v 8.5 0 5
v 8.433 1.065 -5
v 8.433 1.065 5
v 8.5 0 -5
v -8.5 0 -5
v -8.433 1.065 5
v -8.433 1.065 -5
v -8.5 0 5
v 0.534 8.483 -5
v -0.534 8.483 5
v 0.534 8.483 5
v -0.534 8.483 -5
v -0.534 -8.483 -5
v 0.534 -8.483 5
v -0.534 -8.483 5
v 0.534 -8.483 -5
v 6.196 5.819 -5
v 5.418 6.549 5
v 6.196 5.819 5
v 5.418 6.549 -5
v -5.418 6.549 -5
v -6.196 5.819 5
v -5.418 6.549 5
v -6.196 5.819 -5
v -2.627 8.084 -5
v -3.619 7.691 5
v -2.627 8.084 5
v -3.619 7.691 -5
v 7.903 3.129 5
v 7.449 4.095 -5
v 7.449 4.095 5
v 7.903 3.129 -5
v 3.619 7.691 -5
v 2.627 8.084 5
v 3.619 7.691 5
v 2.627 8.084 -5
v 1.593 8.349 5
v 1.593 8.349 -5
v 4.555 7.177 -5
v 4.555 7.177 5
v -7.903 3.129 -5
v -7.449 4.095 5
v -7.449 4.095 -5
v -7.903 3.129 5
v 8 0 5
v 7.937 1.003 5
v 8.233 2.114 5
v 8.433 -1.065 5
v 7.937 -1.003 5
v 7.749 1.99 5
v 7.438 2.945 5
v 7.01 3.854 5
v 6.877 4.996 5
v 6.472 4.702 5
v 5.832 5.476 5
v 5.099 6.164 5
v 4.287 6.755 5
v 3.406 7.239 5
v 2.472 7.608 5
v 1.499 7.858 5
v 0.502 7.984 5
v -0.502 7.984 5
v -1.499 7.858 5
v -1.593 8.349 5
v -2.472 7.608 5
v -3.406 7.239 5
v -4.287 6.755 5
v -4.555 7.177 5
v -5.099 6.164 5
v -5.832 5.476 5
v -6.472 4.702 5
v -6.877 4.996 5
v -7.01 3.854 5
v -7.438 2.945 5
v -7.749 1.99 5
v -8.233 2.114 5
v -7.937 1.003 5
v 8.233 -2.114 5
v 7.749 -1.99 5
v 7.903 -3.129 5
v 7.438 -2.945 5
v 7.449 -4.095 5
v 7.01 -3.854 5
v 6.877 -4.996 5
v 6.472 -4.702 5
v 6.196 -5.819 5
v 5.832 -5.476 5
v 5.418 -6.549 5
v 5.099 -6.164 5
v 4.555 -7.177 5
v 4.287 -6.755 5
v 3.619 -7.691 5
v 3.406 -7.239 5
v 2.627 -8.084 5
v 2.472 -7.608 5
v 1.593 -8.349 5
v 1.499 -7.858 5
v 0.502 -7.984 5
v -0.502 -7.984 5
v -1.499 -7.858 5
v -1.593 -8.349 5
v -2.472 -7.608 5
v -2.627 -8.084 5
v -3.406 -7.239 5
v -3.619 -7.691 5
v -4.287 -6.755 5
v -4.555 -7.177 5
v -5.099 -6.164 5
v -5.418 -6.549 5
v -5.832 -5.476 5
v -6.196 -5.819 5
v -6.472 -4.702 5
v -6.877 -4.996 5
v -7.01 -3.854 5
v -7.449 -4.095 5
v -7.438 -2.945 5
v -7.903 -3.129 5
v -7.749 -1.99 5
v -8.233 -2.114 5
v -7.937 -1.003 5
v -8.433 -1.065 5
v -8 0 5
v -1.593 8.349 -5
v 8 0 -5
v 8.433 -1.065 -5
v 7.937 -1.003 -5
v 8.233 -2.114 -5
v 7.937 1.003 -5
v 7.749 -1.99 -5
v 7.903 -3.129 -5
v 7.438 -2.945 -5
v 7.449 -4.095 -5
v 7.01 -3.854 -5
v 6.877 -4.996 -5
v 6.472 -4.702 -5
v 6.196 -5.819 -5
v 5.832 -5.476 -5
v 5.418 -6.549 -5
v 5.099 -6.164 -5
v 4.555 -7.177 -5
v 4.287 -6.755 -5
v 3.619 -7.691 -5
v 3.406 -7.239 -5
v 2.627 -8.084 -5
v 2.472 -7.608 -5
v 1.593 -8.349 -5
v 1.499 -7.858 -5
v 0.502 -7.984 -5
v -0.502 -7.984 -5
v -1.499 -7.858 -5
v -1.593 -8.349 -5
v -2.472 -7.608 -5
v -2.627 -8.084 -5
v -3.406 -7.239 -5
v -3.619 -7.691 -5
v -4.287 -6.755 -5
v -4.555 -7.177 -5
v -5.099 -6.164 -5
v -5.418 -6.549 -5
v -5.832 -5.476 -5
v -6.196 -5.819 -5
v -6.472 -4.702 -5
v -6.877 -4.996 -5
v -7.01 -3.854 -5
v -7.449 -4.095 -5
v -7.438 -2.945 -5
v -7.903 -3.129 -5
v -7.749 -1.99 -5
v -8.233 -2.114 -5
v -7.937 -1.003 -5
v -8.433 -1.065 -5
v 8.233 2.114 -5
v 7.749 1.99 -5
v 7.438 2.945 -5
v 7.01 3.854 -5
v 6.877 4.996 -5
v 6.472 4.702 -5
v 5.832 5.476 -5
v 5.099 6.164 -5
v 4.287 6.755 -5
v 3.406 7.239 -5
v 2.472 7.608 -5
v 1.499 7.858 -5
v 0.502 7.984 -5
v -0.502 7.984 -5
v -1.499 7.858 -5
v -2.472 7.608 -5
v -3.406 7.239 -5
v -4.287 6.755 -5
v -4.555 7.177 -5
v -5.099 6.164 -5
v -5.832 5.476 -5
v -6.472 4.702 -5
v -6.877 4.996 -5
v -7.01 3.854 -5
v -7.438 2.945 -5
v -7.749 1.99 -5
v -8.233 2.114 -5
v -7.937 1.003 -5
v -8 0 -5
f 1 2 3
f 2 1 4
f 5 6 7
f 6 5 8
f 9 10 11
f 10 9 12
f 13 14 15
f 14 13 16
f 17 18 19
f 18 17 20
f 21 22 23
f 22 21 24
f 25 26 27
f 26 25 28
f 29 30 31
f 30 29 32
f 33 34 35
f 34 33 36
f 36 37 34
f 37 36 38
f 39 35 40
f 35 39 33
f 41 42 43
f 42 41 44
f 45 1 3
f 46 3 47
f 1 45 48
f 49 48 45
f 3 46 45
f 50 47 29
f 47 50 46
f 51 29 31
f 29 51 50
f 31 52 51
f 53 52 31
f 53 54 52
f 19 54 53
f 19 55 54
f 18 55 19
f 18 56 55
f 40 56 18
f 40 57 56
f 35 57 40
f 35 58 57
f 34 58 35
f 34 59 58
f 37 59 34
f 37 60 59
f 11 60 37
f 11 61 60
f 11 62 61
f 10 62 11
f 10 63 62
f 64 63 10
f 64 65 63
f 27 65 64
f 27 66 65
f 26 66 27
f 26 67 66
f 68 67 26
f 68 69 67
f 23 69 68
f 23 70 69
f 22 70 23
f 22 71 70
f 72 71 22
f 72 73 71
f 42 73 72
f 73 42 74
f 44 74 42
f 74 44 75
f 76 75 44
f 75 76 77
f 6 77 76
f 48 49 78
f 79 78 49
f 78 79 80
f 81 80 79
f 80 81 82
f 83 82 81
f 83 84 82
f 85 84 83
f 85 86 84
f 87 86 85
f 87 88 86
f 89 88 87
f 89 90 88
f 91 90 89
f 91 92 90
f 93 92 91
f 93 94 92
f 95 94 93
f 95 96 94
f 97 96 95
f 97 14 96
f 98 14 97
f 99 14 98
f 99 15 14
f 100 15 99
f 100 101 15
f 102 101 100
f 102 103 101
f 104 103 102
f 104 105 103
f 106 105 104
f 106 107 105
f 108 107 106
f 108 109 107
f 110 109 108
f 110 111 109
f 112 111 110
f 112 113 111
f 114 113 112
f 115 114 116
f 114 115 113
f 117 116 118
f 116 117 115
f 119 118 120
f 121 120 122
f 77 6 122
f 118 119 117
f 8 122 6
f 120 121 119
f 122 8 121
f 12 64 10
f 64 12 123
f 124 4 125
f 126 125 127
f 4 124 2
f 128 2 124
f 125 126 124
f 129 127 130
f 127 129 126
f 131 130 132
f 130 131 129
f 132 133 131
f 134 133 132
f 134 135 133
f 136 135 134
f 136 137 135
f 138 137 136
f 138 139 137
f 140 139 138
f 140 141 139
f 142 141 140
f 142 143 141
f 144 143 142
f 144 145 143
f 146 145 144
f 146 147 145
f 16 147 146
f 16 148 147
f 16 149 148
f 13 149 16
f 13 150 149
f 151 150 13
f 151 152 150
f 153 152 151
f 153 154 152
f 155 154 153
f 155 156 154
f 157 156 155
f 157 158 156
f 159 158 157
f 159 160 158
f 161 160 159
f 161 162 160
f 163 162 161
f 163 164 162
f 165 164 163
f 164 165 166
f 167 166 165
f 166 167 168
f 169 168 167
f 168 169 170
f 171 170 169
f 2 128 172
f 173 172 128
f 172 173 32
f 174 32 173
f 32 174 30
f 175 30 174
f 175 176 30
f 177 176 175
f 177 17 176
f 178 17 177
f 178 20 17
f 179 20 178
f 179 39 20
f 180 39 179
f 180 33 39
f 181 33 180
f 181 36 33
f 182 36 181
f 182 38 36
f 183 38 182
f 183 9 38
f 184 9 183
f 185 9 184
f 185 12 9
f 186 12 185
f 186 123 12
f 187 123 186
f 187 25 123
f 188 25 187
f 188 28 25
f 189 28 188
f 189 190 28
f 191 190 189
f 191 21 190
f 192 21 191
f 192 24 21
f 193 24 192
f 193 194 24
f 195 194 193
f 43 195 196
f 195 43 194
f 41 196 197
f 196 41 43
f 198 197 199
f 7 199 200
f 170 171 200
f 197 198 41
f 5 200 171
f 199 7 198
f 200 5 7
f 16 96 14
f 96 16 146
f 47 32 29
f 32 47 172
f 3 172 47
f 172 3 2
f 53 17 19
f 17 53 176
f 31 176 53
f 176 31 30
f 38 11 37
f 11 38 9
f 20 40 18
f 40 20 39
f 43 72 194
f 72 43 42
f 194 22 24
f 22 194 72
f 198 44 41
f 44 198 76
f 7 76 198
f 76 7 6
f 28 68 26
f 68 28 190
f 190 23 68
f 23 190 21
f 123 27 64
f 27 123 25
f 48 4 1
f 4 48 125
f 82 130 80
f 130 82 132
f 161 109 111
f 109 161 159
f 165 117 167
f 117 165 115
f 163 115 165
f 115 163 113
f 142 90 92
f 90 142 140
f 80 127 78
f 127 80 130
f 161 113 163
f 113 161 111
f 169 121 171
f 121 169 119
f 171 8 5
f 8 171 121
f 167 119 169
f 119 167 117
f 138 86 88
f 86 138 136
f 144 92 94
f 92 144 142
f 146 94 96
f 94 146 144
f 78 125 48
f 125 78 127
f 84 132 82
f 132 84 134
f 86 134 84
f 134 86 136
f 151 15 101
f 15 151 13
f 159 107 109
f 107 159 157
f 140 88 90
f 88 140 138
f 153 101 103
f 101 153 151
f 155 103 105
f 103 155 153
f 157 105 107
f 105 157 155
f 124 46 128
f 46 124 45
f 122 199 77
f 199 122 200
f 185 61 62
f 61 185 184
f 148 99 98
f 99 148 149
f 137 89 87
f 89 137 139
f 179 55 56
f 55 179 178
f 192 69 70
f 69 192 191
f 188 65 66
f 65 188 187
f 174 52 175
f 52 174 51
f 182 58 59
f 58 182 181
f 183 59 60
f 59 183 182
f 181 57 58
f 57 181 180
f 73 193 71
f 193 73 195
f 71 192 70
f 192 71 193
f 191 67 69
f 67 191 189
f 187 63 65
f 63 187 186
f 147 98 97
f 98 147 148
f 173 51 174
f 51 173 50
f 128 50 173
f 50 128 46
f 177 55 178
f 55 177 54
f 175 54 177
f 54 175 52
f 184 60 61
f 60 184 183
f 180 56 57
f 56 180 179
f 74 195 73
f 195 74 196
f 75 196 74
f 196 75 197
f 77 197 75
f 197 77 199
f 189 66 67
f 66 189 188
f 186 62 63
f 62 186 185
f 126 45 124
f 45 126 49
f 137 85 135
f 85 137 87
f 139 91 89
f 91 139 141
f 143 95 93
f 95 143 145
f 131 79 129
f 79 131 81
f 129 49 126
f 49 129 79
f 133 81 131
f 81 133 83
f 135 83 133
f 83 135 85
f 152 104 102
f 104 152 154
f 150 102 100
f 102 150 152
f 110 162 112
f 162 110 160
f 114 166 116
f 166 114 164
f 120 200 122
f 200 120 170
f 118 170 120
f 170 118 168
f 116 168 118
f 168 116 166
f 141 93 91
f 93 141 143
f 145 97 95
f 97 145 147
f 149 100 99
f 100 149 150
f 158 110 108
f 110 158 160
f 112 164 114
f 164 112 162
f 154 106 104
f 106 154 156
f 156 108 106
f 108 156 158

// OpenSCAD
$fn = 50;


difference() {
	union() {
		translate(v = [0, 0, -5.0000000000]) {
			cylinder(h = 10, r = 8.5000000000);
		}
	}
	union() {
		translate(v = [0, 0, -100.0000000000]) {
			cylinder(h = 200, r = 8);
		}
	}
}
